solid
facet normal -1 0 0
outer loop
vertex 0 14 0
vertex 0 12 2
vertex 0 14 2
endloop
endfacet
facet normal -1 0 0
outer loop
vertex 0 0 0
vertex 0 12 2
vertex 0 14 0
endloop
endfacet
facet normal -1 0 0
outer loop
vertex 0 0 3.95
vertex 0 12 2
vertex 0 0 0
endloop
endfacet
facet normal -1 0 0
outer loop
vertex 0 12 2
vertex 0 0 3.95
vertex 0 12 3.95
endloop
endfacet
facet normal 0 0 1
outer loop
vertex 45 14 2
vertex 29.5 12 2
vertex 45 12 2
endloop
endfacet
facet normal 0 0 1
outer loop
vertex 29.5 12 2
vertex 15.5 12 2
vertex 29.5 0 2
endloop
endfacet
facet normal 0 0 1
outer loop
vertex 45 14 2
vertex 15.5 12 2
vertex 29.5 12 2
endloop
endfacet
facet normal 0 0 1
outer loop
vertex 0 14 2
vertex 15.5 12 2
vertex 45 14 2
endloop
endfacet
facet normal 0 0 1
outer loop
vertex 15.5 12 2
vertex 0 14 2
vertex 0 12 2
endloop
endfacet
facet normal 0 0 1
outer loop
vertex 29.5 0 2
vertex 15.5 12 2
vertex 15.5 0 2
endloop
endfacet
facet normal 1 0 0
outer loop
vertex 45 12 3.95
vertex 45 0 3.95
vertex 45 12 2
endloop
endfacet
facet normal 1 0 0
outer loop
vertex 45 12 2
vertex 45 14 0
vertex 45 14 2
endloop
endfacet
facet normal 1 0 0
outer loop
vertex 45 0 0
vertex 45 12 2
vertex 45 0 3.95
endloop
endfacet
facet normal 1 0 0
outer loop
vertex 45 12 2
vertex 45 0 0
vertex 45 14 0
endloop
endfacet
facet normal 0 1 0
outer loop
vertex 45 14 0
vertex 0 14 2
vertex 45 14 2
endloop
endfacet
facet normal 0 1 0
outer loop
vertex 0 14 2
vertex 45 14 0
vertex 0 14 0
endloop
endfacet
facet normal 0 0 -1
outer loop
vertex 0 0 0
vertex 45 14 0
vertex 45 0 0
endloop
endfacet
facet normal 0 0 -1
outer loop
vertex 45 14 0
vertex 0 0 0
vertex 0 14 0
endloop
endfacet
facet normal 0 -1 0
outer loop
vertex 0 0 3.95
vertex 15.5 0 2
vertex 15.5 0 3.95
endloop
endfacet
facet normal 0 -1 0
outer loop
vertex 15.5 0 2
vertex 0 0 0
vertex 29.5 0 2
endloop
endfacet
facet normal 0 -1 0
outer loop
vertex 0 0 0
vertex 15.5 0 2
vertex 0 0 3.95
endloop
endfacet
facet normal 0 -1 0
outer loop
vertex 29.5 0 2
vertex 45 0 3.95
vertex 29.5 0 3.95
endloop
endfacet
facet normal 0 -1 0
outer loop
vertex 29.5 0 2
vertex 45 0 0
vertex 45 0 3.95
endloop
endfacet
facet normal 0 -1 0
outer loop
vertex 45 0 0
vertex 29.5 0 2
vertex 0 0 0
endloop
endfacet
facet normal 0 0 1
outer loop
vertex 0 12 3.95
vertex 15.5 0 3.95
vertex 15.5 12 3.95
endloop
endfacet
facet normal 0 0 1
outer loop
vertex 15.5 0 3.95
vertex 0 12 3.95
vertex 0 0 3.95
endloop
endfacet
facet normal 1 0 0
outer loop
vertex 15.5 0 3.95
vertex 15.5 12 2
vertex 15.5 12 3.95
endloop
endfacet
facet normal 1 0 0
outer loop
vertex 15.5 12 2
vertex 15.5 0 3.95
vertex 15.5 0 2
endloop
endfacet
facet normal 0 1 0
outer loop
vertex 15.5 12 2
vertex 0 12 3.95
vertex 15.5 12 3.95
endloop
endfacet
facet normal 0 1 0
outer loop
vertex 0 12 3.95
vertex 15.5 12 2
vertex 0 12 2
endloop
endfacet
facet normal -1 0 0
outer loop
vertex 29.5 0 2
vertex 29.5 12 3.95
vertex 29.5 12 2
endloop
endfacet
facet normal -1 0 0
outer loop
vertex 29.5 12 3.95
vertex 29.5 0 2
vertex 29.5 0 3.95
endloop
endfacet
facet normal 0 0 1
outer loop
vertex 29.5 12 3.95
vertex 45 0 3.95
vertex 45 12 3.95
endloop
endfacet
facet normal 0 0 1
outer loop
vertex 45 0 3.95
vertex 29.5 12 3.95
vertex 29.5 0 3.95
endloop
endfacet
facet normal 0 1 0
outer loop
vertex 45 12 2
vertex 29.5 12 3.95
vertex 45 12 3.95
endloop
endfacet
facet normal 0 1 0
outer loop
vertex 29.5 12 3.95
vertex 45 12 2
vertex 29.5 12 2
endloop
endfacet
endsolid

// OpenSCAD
// HC-SR04 mounting plate

base_w = 45;
base_d = 14;
base_h = 2;

side_w = 15.5;
side_d = 12;
side_h = 1.95;

union() {
    // Base plate
    cube([base_w, base_d, base_h], center = false);

    // Left raised section
    translate([0, 0, base_h])
        cube([side_w, side_d, side_h], center = false);

    // Right raised section
    translate([base_w - side_w, 0, base_h])
        cube([side_w, side_d, side_h], center = false);
}
